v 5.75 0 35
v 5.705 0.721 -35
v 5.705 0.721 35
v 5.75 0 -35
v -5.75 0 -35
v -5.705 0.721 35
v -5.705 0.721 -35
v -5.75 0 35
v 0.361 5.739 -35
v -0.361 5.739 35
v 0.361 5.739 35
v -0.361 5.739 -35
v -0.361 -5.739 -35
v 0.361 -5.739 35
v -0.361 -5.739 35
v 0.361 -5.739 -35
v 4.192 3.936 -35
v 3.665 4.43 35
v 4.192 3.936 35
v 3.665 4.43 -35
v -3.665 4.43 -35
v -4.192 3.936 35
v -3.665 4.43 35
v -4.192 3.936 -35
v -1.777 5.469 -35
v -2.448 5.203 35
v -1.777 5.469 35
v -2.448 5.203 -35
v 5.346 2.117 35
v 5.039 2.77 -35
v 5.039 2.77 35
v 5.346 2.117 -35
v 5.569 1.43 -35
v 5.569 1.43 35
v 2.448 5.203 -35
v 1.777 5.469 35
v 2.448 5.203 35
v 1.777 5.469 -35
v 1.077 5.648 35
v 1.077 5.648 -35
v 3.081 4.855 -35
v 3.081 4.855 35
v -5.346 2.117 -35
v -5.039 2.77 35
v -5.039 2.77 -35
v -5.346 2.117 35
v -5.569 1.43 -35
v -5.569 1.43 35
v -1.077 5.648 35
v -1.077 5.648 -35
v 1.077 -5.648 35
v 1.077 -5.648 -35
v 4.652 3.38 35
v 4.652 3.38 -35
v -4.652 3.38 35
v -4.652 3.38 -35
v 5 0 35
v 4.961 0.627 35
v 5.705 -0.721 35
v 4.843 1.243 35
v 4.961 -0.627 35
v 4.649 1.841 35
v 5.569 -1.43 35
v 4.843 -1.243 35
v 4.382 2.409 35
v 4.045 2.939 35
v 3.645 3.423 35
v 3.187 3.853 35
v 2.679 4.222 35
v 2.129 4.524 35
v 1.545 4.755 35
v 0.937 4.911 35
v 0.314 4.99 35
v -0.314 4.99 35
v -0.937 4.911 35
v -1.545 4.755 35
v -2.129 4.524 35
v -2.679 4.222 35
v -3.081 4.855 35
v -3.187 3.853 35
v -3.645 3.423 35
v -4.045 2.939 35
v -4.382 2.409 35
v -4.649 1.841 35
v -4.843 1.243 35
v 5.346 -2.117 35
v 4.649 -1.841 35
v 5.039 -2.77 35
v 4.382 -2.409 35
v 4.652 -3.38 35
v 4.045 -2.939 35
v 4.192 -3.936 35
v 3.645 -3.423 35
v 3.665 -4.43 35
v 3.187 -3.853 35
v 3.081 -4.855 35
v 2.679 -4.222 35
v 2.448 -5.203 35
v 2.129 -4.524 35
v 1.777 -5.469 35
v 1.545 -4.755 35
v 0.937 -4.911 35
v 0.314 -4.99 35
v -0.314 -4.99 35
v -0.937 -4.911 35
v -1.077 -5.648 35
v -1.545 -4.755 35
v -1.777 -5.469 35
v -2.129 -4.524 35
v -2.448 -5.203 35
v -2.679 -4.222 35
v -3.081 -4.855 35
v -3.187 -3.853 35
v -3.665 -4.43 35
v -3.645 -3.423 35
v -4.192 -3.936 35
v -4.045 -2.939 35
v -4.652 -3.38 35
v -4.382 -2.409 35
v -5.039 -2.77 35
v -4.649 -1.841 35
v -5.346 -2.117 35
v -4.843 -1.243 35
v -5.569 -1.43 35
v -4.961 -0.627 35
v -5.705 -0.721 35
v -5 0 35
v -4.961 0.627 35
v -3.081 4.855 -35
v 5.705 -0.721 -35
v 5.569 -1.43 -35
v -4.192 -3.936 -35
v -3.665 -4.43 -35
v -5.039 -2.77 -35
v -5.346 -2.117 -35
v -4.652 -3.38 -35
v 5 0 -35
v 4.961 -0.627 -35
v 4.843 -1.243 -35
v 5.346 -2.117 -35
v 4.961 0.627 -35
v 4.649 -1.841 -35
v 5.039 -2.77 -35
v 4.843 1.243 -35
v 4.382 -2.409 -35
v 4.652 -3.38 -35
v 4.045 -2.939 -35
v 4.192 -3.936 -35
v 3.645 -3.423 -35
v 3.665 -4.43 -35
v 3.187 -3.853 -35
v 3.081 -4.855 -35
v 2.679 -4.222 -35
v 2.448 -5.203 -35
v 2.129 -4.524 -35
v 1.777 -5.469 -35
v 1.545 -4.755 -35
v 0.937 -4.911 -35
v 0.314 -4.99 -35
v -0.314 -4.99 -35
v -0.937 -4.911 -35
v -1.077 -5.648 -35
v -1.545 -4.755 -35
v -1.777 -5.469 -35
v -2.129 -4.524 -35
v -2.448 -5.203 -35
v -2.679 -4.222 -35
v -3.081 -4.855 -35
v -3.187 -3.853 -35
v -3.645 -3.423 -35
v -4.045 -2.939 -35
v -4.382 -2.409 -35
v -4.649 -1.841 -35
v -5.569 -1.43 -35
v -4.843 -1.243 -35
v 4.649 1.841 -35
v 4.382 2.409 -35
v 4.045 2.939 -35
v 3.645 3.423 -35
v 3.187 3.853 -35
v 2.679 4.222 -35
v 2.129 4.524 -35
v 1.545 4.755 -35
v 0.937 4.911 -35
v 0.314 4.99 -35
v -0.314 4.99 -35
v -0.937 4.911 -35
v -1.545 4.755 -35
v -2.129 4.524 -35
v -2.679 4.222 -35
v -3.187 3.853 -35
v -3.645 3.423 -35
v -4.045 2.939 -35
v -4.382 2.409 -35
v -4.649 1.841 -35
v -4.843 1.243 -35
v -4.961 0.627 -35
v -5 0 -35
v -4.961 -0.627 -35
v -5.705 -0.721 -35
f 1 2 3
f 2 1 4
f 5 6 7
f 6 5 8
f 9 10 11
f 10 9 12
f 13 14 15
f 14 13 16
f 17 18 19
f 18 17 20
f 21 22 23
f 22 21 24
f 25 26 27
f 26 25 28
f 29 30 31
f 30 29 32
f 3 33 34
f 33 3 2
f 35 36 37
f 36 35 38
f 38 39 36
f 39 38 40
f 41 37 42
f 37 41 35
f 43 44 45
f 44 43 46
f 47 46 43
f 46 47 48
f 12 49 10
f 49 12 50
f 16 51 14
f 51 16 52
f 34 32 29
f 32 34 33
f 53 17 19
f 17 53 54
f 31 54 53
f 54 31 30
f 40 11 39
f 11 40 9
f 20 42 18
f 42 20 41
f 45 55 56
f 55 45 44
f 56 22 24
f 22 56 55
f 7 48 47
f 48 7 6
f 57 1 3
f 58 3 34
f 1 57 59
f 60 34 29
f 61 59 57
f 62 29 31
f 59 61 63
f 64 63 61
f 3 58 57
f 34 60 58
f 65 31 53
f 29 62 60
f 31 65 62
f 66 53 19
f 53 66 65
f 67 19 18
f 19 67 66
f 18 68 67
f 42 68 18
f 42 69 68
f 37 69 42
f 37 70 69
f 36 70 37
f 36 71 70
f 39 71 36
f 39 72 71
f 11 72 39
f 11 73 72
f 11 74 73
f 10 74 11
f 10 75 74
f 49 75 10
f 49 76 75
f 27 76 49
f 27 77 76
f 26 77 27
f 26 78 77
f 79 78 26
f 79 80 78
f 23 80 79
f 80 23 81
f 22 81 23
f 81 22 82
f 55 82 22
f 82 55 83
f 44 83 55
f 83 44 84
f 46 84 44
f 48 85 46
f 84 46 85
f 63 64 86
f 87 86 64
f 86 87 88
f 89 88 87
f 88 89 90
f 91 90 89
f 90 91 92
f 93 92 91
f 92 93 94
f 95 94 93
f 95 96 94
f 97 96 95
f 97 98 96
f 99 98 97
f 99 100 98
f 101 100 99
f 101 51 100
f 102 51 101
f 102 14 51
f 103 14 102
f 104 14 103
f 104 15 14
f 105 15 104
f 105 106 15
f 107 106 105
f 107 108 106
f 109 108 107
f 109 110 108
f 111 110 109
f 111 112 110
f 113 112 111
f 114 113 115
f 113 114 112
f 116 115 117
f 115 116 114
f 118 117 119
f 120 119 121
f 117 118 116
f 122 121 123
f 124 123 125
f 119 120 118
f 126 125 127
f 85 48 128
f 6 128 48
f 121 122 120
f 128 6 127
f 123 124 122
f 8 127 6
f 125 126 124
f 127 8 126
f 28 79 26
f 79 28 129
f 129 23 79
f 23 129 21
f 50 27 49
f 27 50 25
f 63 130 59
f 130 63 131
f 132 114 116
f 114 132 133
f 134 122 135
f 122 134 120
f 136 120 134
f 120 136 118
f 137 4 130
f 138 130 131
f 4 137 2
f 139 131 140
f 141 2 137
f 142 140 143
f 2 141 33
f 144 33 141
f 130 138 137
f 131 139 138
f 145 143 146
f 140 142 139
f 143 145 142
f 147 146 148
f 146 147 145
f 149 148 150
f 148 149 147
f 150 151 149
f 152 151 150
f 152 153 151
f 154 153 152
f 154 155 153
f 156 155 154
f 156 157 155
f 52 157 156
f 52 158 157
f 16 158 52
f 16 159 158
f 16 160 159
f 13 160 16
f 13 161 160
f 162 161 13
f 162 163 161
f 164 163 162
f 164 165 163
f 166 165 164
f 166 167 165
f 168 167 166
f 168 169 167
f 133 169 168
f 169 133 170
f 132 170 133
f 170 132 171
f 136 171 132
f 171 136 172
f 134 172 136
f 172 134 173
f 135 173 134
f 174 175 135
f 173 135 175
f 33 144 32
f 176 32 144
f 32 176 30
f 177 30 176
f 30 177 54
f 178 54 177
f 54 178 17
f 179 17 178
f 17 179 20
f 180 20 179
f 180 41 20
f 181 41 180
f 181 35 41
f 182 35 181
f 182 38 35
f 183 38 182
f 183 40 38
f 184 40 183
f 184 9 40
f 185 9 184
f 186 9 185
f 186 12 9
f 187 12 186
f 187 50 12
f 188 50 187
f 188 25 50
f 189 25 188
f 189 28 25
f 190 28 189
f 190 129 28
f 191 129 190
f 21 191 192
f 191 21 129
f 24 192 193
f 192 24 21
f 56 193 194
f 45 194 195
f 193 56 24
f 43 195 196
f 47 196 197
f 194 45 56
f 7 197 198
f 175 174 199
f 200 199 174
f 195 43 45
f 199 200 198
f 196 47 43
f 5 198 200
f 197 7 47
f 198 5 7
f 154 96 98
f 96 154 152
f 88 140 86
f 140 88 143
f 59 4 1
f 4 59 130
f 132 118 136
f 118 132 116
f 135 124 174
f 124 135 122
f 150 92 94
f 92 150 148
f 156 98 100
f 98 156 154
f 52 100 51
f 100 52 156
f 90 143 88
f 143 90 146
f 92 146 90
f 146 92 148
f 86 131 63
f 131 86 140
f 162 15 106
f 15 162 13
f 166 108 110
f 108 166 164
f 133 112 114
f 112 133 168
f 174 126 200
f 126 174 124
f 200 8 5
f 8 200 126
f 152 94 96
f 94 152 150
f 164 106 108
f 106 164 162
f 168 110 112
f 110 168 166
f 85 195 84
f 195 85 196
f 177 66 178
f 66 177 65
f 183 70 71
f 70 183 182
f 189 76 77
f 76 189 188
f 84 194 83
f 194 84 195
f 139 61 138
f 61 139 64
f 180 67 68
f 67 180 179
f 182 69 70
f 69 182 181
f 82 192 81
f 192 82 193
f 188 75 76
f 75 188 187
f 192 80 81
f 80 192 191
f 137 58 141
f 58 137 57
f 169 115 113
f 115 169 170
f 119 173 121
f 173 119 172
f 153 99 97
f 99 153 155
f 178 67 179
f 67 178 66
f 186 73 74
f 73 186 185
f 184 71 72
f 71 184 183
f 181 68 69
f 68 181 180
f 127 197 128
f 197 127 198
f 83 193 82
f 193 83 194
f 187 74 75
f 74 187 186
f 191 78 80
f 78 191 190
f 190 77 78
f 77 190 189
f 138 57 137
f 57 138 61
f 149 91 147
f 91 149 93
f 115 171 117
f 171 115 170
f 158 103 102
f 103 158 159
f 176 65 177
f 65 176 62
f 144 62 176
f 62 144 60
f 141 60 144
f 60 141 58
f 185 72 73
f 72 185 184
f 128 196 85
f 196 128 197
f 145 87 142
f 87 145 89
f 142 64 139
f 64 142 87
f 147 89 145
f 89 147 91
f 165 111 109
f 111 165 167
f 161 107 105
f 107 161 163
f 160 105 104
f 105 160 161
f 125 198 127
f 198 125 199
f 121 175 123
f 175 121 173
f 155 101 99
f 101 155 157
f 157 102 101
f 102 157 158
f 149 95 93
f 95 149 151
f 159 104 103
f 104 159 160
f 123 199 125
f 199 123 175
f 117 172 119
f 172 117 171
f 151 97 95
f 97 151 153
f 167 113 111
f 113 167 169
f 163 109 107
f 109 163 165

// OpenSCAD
$fn = 50;


difference() {
	union() {
		translate(v = [0, 0, -35.0000000000]) {
			cylinder(h = 70, r = 5.7500000000);
		}
	}
	union() {
		translate(v = [0, 0, -100.0000000000]) {
			cylinder(h = 200, r = 5.0000000000);
		}
	}
}
